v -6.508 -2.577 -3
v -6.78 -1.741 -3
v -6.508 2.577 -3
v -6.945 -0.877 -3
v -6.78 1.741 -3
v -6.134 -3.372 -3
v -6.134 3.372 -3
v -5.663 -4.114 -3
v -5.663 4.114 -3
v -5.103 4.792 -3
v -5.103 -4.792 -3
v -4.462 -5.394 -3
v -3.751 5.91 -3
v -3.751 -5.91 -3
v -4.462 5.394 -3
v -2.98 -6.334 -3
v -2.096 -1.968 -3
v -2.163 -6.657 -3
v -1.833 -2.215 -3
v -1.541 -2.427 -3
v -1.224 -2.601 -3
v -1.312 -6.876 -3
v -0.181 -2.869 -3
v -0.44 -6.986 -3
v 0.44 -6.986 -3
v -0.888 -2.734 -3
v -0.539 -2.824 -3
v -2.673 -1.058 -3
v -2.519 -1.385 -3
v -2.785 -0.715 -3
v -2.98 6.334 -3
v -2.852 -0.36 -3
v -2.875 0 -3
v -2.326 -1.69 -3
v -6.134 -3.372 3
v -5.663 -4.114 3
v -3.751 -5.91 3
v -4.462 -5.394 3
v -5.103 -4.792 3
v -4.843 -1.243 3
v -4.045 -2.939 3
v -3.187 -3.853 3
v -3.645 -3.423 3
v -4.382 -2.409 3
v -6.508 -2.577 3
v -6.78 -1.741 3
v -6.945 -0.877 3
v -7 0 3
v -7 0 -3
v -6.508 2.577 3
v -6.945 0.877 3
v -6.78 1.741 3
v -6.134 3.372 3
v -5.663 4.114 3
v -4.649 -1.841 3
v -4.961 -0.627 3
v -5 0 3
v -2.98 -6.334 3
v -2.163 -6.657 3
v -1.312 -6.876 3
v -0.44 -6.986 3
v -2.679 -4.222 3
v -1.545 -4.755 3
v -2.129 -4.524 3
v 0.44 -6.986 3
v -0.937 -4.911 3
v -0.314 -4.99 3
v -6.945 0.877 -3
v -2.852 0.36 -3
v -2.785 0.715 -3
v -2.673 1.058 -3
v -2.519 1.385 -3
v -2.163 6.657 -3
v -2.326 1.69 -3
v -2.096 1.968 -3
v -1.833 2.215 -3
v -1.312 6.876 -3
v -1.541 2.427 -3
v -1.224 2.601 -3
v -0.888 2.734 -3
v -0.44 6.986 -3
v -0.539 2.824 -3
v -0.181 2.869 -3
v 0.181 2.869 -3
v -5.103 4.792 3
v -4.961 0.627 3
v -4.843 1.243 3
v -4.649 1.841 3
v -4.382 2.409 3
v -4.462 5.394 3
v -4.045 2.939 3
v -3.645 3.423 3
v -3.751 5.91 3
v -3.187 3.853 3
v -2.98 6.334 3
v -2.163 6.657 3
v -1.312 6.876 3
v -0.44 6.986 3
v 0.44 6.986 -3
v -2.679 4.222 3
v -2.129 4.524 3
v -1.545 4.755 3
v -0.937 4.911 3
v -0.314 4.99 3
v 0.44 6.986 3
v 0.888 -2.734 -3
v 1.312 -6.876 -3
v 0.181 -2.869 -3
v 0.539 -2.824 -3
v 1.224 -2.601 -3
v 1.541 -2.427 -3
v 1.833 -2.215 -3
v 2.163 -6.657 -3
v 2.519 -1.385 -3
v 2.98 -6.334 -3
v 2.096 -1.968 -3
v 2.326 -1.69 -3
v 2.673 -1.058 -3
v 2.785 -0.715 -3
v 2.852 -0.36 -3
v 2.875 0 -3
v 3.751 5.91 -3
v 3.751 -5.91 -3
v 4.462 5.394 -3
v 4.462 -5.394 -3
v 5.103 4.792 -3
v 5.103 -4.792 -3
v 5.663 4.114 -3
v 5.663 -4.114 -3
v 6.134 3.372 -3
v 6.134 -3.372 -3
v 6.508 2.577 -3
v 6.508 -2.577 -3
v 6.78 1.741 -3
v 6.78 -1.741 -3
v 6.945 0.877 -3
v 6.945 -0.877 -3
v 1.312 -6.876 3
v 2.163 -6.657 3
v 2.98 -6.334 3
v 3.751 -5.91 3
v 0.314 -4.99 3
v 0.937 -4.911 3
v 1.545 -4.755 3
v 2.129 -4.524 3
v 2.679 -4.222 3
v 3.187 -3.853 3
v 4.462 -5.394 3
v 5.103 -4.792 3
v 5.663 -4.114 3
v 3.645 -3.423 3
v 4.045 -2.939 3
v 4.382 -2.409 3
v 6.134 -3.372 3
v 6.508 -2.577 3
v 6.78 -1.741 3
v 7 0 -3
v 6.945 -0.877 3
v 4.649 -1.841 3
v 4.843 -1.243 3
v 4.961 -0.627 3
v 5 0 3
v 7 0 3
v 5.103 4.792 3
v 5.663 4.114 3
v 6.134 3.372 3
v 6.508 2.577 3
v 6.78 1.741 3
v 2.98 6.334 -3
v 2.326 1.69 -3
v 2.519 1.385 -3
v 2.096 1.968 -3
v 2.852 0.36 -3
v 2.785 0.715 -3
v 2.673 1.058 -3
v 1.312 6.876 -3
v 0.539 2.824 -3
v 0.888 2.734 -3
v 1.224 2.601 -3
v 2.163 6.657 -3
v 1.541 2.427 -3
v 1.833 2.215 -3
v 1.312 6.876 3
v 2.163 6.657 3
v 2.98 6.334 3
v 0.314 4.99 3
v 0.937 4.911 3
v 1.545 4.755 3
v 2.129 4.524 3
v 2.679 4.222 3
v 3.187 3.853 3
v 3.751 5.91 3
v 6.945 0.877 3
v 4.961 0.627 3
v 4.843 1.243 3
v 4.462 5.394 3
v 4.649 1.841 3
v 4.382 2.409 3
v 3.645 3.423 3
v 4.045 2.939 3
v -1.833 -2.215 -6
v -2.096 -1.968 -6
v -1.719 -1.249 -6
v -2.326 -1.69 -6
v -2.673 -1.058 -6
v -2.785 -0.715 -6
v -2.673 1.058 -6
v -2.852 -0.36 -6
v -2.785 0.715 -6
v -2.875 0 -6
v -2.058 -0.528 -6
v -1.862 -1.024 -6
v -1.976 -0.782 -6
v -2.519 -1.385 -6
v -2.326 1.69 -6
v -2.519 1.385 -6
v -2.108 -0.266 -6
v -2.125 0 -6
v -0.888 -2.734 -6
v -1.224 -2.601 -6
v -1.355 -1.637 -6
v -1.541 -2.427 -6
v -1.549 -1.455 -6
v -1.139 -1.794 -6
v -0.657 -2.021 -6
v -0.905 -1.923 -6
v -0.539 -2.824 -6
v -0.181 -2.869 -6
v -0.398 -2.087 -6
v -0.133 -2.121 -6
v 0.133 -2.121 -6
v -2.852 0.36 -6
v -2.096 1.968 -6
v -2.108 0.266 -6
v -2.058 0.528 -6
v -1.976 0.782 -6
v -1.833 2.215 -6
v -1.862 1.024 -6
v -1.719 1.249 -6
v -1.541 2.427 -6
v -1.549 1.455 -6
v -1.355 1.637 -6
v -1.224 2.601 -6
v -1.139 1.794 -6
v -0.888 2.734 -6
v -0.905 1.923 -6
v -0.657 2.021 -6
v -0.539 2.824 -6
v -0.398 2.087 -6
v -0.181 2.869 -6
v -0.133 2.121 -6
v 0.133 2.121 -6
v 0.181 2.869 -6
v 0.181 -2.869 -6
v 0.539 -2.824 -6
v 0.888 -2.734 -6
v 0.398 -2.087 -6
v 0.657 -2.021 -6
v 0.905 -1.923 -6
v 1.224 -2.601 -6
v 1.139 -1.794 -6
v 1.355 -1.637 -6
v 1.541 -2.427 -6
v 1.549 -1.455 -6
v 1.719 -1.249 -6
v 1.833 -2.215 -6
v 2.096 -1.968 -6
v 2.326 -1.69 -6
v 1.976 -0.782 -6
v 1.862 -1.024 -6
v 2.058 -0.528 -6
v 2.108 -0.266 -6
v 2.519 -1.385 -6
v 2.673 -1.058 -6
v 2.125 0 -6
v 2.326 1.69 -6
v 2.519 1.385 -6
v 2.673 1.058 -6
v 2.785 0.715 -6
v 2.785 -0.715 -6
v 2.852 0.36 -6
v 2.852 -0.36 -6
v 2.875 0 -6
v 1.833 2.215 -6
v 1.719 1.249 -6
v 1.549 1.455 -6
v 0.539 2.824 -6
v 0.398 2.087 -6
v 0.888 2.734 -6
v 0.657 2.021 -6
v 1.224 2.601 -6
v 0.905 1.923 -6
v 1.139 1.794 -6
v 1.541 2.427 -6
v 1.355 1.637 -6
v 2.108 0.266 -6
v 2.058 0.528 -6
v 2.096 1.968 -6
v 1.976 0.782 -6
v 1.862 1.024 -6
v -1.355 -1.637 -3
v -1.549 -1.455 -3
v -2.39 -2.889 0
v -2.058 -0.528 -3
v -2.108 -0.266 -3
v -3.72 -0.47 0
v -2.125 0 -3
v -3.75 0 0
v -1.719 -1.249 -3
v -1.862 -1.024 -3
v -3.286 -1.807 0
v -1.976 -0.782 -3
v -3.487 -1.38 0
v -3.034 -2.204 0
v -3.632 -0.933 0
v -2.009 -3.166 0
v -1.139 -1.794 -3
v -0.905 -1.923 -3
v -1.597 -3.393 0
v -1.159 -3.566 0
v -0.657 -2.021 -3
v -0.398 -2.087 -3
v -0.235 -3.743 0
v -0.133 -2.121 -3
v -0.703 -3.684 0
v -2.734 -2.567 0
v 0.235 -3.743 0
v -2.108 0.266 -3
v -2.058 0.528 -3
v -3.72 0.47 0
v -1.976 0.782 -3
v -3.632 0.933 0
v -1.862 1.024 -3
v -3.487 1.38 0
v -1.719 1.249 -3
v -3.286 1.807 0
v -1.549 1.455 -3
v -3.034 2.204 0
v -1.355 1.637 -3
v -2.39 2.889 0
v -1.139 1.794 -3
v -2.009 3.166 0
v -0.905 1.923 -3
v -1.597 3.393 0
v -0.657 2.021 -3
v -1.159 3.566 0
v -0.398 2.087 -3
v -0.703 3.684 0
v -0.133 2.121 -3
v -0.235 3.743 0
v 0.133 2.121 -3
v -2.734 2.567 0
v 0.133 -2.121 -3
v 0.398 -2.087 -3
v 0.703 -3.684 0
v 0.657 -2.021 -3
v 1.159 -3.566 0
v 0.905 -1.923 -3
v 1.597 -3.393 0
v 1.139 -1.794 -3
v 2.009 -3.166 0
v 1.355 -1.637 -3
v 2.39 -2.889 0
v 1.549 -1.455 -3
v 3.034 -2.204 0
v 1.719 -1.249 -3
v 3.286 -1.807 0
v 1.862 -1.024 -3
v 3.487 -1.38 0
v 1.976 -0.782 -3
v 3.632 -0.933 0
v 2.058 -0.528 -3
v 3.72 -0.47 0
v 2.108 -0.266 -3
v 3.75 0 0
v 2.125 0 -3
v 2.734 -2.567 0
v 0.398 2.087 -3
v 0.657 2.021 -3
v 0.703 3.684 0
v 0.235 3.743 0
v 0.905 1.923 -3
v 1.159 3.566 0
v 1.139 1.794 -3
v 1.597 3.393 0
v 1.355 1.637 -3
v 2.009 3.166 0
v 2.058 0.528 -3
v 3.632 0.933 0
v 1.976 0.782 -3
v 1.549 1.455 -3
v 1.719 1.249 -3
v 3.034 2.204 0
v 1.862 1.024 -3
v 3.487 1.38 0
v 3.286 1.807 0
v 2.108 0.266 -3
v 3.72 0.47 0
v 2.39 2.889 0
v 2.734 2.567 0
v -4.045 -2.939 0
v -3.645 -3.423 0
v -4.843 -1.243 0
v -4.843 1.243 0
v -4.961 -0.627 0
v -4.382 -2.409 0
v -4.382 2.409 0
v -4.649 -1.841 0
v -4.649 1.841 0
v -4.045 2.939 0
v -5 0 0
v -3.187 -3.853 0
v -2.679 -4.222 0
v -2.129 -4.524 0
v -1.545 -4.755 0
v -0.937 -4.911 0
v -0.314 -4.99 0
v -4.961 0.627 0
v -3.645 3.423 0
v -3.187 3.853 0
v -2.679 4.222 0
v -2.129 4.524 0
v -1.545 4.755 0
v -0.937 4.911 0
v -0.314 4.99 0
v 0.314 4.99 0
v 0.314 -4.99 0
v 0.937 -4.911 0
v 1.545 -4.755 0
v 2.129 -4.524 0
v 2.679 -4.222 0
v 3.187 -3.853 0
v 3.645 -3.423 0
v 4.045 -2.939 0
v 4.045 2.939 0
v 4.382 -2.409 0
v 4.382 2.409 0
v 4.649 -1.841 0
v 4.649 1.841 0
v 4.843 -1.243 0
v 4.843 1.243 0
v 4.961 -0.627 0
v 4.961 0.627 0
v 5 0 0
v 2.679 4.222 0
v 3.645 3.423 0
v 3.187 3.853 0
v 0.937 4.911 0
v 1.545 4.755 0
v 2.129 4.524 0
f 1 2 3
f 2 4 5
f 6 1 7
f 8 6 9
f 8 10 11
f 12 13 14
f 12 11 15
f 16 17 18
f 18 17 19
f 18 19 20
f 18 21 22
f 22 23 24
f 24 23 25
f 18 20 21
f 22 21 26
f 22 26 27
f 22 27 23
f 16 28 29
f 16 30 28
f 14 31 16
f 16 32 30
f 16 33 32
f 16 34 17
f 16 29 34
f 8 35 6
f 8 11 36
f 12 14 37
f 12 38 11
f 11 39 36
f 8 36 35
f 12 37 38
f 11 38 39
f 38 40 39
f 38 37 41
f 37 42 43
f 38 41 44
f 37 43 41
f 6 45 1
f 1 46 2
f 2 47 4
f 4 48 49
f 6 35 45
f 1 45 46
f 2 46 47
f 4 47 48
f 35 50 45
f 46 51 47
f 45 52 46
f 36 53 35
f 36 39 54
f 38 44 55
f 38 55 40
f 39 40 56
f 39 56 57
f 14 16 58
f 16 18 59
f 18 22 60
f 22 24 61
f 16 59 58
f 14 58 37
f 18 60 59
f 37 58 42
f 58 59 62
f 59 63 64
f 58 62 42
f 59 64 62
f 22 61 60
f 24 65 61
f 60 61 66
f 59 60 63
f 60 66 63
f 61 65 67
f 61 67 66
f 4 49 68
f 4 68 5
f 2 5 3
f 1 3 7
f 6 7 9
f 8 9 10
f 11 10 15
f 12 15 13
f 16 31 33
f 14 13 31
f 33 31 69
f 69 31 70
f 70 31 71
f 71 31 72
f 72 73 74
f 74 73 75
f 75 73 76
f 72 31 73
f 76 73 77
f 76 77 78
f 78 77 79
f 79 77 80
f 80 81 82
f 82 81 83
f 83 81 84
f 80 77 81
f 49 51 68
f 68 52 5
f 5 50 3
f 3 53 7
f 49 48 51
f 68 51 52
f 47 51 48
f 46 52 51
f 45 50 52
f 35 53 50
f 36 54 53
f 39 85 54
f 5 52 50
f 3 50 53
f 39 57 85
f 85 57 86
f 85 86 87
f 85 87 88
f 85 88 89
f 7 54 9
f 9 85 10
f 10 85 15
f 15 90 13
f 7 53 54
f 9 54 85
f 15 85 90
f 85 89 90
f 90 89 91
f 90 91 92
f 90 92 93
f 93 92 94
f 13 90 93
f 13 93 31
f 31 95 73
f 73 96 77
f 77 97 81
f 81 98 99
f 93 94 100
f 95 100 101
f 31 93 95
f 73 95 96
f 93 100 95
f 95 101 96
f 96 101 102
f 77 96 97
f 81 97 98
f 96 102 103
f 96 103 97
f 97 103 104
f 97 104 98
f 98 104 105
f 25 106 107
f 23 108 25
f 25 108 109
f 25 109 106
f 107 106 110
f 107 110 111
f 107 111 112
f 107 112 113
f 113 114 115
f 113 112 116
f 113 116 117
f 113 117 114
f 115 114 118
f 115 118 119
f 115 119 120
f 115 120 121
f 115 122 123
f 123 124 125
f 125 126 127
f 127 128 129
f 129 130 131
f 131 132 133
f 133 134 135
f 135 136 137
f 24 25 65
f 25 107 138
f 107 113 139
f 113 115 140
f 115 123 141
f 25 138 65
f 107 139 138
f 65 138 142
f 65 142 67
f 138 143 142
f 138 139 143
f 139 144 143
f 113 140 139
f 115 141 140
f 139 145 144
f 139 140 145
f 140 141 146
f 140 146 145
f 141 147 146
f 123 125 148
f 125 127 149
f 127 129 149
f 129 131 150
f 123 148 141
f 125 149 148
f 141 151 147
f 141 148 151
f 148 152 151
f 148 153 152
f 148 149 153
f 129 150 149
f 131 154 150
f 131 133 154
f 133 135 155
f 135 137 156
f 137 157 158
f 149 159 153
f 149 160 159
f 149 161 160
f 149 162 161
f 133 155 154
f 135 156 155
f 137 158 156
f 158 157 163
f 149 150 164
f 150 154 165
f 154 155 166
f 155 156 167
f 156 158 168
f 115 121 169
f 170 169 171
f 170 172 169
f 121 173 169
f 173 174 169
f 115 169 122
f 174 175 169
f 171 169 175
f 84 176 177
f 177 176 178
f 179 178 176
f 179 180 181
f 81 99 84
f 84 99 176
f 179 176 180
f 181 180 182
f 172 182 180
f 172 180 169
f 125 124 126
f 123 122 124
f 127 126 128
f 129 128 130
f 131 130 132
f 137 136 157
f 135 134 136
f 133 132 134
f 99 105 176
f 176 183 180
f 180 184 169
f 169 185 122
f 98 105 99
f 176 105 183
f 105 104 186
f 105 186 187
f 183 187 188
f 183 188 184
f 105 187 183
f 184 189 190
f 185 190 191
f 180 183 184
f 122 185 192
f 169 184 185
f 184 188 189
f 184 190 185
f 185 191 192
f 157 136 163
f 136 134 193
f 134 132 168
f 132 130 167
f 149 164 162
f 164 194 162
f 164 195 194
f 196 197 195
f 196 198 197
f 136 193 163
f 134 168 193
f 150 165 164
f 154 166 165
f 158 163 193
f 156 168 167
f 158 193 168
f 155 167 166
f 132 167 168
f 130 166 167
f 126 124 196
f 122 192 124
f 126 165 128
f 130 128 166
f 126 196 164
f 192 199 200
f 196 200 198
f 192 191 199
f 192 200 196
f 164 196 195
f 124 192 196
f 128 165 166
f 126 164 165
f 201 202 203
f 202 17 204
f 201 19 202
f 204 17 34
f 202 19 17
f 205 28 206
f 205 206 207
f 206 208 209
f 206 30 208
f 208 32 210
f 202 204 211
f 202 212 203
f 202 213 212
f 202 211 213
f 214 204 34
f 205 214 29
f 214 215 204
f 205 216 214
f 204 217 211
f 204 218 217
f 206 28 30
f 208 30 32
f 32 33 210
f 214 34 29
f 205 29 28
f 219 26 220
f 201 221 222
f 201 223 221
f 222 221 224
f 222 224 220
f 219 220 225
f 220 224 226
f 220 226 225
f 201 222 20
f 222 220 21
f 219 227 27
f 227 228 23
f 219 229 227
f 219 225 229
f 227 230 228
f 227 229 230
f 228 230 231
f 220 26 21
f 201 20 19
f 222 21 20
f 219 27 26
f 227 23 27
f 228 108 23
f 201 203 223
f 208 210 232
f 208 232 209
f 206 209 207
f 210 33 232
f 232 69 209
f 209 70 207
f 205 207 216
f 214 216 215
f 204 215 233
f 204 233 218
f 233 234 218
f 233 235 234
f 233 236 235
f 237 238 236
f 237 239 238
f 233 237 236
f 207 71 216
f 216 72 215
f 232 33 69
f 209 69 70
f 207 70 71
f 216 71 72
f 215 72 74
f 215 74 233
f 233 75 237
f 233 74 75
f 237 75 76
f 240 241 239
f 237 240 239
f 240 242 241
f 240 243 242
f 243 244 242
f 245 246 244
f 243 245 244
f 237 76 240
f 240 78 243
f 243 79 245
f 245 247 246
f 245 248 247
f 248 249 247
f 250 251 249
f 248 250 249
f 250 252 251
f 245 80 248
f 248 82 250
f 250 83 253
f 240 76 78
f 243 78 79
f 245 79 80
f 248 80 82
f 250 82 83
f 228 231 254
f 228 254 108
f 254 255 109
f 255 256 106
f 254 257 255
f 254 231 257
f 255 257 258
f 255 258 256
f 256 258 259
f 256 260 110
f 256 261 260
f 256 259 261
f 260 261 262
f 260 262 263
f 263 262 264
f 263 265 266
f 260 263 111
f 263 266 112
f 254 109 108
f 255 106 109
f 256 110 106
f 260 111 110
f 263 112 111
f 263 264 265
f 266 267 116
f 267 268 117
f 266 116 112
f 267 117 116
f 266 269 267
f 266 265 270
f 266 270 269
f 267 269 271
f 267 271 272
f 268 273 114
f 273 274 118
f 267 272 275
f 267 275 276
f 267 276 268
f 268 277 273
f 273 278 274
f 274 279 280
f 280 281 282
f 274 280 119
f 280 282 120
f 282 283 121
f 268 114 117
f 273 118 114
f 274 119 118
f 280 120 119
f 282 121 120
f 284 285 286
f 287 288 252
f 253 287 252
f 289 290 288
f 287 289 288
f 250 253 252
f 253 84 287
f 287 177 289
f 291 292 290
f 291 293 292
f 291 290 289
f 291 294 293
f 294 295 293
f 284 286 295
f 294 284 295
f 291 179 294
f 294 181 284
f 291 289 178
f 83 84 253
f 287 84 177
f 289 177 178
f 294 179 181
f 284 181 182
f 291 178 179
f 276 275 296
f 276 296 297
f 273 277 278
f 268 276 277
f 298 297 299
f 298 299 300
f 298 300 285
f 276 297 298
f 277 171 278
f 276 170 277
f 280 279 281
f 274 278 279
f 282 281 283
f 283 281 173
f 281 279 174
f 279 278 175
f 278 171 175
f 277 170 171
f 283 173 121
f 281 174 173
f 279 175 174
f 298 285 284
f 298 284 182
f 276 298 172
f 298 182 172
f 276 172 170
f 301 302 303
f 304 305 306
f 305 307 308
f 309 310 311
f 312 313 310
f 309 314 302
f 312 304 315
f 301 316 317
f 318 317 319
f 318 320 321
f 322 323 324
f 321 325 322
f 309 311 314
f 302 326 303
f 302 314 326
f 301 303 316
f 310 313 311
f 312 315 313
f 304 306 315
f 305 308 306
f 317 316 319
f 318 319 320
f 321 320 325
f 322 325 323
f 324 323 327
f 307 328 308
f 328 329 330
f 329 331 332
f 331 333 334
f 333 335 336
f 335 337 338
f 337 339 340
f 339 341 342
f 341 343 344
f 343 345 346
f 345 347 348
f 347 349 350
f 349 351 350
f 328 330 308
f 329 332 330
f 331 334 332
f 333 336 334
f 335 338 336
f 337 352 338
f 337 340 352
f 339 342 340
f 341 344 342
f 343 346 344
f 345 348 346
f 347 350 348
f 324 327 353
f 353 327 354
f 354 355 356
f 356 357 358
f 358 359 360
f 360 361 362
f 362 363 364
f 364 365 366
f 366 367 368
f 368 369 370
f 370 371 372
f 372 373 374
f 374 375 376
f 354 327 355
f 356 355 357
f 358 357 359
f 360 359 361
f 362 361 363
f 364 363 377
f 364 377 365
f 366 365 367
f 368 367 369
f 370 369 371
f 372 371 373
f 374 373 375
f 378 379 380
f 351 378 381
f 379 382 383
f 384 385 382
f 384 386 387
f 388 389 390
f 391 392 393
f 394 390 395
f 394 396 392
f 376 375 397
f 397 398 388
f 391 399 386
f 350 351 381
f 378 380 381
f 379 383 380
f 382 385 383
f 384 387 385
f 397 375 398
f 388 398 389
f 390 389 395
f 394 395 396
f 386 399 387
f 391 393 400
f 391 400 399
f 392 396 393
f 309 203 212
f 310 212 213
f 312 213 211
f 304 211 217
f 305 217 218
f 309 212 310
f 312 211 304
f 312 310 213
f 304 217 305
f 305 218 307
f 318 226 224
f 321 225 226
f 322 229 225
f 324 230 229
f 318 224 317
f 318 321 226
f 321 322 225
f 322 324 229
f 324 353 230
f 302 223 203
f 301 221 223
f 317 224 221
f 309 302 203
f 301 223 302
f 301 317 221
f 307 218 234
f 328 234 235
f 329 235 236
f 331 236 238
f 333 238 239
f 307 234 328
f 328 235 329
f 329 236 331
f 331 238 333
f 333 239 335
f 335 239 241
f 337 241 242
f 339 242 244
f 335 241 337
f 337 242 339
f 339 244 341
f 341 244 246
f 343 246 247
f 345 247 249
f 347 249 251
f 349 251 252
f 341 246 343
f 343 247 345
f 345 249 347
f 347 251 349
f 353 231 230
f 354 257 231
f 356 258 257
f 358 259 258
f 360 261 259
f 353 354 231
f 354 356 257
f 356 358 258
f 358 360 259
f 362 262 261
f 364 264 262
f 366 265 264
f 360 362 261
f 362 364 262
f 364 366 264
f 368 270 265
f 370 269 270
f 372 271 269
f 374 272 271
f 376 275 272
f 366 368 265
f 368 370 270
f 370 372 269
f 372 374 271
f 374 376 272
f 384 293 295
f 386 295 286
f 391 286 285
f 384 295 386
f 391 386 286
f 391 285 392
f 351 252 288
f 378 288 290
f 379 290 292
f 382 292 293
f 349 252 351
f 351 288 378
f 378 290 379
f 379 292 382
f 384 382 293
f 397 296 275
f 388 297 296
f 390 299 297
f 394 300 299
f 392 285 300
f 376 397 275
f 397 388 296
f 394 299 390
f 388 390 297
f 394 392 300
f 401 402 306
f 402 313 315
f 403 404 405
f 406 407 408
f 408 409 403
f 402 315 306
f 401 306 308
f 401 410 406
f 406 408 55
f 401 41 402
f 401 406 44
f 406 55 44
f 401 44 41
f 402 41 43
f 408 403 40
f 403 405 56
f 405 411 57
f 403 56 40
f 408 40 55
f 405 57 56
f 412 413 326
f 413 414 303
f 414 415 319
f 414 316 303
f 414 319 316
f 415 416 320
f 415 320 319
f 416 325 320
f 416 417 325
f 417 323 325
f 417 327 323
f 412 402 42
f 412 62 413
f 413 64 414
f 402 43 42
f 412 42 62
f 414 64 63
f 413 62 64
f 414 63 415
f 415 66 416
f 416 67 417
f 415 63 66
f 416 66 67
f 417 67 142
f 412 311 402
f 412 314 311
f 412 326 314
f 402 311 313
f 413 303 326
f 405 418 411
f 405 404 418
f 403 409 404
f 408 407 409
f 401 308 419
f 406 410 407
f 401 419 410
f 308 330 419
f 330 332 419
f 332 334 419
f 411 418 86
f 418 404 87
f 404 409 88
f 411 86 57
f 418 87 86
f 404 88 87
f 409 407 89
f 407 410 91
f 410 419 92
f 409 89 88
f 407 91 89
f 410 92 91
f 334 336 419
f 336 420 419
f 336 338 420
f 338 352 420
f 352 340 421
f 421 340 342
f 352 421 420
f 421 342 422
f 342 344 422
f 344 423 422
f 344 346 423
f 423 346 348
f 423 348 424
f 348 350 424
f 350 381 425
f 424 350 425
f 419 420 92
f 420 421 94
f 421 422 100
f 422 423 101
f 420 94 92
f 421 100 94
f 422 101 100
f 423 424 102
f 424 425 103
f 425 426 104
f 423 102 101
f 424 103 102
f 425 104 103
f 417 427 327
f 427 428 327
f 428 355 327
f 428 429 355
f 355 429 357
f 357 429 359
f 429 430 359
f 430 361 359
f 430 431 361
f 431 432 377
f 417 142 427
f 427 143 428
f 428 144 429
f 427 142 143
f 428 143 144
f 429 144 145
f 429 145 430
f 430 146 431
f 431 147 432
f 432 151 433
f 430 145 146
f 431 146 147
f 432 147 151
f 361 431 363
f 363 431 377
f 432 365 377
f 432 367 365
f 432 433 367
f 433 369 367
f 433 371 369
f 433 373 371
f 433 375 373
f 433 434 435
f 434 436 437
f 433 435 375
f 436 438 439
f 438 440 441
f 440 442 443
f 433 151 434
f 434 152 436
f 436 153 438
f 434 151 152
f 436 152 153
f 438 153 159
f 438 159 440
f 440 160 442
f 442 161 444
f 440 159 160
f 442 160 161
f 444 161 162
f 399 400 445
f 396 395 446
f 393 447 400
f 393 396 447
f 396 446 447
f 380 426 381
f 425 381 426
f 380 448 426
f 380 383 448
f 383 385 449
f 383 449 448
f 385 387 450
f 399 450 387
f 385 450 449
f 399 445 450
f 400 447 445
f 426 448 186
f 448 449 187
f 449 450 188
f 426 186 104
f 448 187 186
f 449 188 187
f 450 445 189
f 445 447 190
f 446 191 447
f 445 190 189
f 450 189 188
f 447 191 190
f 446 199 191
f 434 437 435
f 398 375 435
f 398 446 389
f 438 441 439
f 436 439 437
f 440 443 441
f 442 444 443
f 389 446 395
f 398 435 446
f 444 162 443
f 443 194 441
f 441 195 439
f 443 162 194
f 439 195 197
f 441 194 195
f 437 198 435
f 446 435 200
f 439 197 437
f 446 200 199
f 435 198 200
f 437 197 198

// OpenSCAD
$fn = 50;


difference() {
	union() {
		translate(v = [0, 0, -3.0000000000]) {
			cylinder(h = 6, r = 7.0000000000);
		}
		#translate(v = [0, 0, -6.0000000000]) {
			cylinder(h = 6, r = 2.8750000000);
		}
	}
	union() {
		translate(v = [0, 0, 0]) {
			rotate(a = [0, 0, 0]) {
				difference() {
					union() {
						translate(v = [0, 0, -6.0000000000]) {
							cylinder(h = 6, r = 2.0000000000);
						}
						translate(v = [0, 0, -3]) {
							cylinder(h = 3, r1 = 2.1250000000, r2 = 3.7500000000);
						}
						translate(v = [0, 0, -6.0000000000]) {
							cylinder(h = 6, r = 2.1250000000);
						}
						translate(v = [0, 0, -6.0000000000]) {
							cylinder(h = 6, r = 2.0000000000);
						}
					}
					union();
				}
			}
		}
		#cylinder(h = 3, r = 5.0000000000);
	}
}
